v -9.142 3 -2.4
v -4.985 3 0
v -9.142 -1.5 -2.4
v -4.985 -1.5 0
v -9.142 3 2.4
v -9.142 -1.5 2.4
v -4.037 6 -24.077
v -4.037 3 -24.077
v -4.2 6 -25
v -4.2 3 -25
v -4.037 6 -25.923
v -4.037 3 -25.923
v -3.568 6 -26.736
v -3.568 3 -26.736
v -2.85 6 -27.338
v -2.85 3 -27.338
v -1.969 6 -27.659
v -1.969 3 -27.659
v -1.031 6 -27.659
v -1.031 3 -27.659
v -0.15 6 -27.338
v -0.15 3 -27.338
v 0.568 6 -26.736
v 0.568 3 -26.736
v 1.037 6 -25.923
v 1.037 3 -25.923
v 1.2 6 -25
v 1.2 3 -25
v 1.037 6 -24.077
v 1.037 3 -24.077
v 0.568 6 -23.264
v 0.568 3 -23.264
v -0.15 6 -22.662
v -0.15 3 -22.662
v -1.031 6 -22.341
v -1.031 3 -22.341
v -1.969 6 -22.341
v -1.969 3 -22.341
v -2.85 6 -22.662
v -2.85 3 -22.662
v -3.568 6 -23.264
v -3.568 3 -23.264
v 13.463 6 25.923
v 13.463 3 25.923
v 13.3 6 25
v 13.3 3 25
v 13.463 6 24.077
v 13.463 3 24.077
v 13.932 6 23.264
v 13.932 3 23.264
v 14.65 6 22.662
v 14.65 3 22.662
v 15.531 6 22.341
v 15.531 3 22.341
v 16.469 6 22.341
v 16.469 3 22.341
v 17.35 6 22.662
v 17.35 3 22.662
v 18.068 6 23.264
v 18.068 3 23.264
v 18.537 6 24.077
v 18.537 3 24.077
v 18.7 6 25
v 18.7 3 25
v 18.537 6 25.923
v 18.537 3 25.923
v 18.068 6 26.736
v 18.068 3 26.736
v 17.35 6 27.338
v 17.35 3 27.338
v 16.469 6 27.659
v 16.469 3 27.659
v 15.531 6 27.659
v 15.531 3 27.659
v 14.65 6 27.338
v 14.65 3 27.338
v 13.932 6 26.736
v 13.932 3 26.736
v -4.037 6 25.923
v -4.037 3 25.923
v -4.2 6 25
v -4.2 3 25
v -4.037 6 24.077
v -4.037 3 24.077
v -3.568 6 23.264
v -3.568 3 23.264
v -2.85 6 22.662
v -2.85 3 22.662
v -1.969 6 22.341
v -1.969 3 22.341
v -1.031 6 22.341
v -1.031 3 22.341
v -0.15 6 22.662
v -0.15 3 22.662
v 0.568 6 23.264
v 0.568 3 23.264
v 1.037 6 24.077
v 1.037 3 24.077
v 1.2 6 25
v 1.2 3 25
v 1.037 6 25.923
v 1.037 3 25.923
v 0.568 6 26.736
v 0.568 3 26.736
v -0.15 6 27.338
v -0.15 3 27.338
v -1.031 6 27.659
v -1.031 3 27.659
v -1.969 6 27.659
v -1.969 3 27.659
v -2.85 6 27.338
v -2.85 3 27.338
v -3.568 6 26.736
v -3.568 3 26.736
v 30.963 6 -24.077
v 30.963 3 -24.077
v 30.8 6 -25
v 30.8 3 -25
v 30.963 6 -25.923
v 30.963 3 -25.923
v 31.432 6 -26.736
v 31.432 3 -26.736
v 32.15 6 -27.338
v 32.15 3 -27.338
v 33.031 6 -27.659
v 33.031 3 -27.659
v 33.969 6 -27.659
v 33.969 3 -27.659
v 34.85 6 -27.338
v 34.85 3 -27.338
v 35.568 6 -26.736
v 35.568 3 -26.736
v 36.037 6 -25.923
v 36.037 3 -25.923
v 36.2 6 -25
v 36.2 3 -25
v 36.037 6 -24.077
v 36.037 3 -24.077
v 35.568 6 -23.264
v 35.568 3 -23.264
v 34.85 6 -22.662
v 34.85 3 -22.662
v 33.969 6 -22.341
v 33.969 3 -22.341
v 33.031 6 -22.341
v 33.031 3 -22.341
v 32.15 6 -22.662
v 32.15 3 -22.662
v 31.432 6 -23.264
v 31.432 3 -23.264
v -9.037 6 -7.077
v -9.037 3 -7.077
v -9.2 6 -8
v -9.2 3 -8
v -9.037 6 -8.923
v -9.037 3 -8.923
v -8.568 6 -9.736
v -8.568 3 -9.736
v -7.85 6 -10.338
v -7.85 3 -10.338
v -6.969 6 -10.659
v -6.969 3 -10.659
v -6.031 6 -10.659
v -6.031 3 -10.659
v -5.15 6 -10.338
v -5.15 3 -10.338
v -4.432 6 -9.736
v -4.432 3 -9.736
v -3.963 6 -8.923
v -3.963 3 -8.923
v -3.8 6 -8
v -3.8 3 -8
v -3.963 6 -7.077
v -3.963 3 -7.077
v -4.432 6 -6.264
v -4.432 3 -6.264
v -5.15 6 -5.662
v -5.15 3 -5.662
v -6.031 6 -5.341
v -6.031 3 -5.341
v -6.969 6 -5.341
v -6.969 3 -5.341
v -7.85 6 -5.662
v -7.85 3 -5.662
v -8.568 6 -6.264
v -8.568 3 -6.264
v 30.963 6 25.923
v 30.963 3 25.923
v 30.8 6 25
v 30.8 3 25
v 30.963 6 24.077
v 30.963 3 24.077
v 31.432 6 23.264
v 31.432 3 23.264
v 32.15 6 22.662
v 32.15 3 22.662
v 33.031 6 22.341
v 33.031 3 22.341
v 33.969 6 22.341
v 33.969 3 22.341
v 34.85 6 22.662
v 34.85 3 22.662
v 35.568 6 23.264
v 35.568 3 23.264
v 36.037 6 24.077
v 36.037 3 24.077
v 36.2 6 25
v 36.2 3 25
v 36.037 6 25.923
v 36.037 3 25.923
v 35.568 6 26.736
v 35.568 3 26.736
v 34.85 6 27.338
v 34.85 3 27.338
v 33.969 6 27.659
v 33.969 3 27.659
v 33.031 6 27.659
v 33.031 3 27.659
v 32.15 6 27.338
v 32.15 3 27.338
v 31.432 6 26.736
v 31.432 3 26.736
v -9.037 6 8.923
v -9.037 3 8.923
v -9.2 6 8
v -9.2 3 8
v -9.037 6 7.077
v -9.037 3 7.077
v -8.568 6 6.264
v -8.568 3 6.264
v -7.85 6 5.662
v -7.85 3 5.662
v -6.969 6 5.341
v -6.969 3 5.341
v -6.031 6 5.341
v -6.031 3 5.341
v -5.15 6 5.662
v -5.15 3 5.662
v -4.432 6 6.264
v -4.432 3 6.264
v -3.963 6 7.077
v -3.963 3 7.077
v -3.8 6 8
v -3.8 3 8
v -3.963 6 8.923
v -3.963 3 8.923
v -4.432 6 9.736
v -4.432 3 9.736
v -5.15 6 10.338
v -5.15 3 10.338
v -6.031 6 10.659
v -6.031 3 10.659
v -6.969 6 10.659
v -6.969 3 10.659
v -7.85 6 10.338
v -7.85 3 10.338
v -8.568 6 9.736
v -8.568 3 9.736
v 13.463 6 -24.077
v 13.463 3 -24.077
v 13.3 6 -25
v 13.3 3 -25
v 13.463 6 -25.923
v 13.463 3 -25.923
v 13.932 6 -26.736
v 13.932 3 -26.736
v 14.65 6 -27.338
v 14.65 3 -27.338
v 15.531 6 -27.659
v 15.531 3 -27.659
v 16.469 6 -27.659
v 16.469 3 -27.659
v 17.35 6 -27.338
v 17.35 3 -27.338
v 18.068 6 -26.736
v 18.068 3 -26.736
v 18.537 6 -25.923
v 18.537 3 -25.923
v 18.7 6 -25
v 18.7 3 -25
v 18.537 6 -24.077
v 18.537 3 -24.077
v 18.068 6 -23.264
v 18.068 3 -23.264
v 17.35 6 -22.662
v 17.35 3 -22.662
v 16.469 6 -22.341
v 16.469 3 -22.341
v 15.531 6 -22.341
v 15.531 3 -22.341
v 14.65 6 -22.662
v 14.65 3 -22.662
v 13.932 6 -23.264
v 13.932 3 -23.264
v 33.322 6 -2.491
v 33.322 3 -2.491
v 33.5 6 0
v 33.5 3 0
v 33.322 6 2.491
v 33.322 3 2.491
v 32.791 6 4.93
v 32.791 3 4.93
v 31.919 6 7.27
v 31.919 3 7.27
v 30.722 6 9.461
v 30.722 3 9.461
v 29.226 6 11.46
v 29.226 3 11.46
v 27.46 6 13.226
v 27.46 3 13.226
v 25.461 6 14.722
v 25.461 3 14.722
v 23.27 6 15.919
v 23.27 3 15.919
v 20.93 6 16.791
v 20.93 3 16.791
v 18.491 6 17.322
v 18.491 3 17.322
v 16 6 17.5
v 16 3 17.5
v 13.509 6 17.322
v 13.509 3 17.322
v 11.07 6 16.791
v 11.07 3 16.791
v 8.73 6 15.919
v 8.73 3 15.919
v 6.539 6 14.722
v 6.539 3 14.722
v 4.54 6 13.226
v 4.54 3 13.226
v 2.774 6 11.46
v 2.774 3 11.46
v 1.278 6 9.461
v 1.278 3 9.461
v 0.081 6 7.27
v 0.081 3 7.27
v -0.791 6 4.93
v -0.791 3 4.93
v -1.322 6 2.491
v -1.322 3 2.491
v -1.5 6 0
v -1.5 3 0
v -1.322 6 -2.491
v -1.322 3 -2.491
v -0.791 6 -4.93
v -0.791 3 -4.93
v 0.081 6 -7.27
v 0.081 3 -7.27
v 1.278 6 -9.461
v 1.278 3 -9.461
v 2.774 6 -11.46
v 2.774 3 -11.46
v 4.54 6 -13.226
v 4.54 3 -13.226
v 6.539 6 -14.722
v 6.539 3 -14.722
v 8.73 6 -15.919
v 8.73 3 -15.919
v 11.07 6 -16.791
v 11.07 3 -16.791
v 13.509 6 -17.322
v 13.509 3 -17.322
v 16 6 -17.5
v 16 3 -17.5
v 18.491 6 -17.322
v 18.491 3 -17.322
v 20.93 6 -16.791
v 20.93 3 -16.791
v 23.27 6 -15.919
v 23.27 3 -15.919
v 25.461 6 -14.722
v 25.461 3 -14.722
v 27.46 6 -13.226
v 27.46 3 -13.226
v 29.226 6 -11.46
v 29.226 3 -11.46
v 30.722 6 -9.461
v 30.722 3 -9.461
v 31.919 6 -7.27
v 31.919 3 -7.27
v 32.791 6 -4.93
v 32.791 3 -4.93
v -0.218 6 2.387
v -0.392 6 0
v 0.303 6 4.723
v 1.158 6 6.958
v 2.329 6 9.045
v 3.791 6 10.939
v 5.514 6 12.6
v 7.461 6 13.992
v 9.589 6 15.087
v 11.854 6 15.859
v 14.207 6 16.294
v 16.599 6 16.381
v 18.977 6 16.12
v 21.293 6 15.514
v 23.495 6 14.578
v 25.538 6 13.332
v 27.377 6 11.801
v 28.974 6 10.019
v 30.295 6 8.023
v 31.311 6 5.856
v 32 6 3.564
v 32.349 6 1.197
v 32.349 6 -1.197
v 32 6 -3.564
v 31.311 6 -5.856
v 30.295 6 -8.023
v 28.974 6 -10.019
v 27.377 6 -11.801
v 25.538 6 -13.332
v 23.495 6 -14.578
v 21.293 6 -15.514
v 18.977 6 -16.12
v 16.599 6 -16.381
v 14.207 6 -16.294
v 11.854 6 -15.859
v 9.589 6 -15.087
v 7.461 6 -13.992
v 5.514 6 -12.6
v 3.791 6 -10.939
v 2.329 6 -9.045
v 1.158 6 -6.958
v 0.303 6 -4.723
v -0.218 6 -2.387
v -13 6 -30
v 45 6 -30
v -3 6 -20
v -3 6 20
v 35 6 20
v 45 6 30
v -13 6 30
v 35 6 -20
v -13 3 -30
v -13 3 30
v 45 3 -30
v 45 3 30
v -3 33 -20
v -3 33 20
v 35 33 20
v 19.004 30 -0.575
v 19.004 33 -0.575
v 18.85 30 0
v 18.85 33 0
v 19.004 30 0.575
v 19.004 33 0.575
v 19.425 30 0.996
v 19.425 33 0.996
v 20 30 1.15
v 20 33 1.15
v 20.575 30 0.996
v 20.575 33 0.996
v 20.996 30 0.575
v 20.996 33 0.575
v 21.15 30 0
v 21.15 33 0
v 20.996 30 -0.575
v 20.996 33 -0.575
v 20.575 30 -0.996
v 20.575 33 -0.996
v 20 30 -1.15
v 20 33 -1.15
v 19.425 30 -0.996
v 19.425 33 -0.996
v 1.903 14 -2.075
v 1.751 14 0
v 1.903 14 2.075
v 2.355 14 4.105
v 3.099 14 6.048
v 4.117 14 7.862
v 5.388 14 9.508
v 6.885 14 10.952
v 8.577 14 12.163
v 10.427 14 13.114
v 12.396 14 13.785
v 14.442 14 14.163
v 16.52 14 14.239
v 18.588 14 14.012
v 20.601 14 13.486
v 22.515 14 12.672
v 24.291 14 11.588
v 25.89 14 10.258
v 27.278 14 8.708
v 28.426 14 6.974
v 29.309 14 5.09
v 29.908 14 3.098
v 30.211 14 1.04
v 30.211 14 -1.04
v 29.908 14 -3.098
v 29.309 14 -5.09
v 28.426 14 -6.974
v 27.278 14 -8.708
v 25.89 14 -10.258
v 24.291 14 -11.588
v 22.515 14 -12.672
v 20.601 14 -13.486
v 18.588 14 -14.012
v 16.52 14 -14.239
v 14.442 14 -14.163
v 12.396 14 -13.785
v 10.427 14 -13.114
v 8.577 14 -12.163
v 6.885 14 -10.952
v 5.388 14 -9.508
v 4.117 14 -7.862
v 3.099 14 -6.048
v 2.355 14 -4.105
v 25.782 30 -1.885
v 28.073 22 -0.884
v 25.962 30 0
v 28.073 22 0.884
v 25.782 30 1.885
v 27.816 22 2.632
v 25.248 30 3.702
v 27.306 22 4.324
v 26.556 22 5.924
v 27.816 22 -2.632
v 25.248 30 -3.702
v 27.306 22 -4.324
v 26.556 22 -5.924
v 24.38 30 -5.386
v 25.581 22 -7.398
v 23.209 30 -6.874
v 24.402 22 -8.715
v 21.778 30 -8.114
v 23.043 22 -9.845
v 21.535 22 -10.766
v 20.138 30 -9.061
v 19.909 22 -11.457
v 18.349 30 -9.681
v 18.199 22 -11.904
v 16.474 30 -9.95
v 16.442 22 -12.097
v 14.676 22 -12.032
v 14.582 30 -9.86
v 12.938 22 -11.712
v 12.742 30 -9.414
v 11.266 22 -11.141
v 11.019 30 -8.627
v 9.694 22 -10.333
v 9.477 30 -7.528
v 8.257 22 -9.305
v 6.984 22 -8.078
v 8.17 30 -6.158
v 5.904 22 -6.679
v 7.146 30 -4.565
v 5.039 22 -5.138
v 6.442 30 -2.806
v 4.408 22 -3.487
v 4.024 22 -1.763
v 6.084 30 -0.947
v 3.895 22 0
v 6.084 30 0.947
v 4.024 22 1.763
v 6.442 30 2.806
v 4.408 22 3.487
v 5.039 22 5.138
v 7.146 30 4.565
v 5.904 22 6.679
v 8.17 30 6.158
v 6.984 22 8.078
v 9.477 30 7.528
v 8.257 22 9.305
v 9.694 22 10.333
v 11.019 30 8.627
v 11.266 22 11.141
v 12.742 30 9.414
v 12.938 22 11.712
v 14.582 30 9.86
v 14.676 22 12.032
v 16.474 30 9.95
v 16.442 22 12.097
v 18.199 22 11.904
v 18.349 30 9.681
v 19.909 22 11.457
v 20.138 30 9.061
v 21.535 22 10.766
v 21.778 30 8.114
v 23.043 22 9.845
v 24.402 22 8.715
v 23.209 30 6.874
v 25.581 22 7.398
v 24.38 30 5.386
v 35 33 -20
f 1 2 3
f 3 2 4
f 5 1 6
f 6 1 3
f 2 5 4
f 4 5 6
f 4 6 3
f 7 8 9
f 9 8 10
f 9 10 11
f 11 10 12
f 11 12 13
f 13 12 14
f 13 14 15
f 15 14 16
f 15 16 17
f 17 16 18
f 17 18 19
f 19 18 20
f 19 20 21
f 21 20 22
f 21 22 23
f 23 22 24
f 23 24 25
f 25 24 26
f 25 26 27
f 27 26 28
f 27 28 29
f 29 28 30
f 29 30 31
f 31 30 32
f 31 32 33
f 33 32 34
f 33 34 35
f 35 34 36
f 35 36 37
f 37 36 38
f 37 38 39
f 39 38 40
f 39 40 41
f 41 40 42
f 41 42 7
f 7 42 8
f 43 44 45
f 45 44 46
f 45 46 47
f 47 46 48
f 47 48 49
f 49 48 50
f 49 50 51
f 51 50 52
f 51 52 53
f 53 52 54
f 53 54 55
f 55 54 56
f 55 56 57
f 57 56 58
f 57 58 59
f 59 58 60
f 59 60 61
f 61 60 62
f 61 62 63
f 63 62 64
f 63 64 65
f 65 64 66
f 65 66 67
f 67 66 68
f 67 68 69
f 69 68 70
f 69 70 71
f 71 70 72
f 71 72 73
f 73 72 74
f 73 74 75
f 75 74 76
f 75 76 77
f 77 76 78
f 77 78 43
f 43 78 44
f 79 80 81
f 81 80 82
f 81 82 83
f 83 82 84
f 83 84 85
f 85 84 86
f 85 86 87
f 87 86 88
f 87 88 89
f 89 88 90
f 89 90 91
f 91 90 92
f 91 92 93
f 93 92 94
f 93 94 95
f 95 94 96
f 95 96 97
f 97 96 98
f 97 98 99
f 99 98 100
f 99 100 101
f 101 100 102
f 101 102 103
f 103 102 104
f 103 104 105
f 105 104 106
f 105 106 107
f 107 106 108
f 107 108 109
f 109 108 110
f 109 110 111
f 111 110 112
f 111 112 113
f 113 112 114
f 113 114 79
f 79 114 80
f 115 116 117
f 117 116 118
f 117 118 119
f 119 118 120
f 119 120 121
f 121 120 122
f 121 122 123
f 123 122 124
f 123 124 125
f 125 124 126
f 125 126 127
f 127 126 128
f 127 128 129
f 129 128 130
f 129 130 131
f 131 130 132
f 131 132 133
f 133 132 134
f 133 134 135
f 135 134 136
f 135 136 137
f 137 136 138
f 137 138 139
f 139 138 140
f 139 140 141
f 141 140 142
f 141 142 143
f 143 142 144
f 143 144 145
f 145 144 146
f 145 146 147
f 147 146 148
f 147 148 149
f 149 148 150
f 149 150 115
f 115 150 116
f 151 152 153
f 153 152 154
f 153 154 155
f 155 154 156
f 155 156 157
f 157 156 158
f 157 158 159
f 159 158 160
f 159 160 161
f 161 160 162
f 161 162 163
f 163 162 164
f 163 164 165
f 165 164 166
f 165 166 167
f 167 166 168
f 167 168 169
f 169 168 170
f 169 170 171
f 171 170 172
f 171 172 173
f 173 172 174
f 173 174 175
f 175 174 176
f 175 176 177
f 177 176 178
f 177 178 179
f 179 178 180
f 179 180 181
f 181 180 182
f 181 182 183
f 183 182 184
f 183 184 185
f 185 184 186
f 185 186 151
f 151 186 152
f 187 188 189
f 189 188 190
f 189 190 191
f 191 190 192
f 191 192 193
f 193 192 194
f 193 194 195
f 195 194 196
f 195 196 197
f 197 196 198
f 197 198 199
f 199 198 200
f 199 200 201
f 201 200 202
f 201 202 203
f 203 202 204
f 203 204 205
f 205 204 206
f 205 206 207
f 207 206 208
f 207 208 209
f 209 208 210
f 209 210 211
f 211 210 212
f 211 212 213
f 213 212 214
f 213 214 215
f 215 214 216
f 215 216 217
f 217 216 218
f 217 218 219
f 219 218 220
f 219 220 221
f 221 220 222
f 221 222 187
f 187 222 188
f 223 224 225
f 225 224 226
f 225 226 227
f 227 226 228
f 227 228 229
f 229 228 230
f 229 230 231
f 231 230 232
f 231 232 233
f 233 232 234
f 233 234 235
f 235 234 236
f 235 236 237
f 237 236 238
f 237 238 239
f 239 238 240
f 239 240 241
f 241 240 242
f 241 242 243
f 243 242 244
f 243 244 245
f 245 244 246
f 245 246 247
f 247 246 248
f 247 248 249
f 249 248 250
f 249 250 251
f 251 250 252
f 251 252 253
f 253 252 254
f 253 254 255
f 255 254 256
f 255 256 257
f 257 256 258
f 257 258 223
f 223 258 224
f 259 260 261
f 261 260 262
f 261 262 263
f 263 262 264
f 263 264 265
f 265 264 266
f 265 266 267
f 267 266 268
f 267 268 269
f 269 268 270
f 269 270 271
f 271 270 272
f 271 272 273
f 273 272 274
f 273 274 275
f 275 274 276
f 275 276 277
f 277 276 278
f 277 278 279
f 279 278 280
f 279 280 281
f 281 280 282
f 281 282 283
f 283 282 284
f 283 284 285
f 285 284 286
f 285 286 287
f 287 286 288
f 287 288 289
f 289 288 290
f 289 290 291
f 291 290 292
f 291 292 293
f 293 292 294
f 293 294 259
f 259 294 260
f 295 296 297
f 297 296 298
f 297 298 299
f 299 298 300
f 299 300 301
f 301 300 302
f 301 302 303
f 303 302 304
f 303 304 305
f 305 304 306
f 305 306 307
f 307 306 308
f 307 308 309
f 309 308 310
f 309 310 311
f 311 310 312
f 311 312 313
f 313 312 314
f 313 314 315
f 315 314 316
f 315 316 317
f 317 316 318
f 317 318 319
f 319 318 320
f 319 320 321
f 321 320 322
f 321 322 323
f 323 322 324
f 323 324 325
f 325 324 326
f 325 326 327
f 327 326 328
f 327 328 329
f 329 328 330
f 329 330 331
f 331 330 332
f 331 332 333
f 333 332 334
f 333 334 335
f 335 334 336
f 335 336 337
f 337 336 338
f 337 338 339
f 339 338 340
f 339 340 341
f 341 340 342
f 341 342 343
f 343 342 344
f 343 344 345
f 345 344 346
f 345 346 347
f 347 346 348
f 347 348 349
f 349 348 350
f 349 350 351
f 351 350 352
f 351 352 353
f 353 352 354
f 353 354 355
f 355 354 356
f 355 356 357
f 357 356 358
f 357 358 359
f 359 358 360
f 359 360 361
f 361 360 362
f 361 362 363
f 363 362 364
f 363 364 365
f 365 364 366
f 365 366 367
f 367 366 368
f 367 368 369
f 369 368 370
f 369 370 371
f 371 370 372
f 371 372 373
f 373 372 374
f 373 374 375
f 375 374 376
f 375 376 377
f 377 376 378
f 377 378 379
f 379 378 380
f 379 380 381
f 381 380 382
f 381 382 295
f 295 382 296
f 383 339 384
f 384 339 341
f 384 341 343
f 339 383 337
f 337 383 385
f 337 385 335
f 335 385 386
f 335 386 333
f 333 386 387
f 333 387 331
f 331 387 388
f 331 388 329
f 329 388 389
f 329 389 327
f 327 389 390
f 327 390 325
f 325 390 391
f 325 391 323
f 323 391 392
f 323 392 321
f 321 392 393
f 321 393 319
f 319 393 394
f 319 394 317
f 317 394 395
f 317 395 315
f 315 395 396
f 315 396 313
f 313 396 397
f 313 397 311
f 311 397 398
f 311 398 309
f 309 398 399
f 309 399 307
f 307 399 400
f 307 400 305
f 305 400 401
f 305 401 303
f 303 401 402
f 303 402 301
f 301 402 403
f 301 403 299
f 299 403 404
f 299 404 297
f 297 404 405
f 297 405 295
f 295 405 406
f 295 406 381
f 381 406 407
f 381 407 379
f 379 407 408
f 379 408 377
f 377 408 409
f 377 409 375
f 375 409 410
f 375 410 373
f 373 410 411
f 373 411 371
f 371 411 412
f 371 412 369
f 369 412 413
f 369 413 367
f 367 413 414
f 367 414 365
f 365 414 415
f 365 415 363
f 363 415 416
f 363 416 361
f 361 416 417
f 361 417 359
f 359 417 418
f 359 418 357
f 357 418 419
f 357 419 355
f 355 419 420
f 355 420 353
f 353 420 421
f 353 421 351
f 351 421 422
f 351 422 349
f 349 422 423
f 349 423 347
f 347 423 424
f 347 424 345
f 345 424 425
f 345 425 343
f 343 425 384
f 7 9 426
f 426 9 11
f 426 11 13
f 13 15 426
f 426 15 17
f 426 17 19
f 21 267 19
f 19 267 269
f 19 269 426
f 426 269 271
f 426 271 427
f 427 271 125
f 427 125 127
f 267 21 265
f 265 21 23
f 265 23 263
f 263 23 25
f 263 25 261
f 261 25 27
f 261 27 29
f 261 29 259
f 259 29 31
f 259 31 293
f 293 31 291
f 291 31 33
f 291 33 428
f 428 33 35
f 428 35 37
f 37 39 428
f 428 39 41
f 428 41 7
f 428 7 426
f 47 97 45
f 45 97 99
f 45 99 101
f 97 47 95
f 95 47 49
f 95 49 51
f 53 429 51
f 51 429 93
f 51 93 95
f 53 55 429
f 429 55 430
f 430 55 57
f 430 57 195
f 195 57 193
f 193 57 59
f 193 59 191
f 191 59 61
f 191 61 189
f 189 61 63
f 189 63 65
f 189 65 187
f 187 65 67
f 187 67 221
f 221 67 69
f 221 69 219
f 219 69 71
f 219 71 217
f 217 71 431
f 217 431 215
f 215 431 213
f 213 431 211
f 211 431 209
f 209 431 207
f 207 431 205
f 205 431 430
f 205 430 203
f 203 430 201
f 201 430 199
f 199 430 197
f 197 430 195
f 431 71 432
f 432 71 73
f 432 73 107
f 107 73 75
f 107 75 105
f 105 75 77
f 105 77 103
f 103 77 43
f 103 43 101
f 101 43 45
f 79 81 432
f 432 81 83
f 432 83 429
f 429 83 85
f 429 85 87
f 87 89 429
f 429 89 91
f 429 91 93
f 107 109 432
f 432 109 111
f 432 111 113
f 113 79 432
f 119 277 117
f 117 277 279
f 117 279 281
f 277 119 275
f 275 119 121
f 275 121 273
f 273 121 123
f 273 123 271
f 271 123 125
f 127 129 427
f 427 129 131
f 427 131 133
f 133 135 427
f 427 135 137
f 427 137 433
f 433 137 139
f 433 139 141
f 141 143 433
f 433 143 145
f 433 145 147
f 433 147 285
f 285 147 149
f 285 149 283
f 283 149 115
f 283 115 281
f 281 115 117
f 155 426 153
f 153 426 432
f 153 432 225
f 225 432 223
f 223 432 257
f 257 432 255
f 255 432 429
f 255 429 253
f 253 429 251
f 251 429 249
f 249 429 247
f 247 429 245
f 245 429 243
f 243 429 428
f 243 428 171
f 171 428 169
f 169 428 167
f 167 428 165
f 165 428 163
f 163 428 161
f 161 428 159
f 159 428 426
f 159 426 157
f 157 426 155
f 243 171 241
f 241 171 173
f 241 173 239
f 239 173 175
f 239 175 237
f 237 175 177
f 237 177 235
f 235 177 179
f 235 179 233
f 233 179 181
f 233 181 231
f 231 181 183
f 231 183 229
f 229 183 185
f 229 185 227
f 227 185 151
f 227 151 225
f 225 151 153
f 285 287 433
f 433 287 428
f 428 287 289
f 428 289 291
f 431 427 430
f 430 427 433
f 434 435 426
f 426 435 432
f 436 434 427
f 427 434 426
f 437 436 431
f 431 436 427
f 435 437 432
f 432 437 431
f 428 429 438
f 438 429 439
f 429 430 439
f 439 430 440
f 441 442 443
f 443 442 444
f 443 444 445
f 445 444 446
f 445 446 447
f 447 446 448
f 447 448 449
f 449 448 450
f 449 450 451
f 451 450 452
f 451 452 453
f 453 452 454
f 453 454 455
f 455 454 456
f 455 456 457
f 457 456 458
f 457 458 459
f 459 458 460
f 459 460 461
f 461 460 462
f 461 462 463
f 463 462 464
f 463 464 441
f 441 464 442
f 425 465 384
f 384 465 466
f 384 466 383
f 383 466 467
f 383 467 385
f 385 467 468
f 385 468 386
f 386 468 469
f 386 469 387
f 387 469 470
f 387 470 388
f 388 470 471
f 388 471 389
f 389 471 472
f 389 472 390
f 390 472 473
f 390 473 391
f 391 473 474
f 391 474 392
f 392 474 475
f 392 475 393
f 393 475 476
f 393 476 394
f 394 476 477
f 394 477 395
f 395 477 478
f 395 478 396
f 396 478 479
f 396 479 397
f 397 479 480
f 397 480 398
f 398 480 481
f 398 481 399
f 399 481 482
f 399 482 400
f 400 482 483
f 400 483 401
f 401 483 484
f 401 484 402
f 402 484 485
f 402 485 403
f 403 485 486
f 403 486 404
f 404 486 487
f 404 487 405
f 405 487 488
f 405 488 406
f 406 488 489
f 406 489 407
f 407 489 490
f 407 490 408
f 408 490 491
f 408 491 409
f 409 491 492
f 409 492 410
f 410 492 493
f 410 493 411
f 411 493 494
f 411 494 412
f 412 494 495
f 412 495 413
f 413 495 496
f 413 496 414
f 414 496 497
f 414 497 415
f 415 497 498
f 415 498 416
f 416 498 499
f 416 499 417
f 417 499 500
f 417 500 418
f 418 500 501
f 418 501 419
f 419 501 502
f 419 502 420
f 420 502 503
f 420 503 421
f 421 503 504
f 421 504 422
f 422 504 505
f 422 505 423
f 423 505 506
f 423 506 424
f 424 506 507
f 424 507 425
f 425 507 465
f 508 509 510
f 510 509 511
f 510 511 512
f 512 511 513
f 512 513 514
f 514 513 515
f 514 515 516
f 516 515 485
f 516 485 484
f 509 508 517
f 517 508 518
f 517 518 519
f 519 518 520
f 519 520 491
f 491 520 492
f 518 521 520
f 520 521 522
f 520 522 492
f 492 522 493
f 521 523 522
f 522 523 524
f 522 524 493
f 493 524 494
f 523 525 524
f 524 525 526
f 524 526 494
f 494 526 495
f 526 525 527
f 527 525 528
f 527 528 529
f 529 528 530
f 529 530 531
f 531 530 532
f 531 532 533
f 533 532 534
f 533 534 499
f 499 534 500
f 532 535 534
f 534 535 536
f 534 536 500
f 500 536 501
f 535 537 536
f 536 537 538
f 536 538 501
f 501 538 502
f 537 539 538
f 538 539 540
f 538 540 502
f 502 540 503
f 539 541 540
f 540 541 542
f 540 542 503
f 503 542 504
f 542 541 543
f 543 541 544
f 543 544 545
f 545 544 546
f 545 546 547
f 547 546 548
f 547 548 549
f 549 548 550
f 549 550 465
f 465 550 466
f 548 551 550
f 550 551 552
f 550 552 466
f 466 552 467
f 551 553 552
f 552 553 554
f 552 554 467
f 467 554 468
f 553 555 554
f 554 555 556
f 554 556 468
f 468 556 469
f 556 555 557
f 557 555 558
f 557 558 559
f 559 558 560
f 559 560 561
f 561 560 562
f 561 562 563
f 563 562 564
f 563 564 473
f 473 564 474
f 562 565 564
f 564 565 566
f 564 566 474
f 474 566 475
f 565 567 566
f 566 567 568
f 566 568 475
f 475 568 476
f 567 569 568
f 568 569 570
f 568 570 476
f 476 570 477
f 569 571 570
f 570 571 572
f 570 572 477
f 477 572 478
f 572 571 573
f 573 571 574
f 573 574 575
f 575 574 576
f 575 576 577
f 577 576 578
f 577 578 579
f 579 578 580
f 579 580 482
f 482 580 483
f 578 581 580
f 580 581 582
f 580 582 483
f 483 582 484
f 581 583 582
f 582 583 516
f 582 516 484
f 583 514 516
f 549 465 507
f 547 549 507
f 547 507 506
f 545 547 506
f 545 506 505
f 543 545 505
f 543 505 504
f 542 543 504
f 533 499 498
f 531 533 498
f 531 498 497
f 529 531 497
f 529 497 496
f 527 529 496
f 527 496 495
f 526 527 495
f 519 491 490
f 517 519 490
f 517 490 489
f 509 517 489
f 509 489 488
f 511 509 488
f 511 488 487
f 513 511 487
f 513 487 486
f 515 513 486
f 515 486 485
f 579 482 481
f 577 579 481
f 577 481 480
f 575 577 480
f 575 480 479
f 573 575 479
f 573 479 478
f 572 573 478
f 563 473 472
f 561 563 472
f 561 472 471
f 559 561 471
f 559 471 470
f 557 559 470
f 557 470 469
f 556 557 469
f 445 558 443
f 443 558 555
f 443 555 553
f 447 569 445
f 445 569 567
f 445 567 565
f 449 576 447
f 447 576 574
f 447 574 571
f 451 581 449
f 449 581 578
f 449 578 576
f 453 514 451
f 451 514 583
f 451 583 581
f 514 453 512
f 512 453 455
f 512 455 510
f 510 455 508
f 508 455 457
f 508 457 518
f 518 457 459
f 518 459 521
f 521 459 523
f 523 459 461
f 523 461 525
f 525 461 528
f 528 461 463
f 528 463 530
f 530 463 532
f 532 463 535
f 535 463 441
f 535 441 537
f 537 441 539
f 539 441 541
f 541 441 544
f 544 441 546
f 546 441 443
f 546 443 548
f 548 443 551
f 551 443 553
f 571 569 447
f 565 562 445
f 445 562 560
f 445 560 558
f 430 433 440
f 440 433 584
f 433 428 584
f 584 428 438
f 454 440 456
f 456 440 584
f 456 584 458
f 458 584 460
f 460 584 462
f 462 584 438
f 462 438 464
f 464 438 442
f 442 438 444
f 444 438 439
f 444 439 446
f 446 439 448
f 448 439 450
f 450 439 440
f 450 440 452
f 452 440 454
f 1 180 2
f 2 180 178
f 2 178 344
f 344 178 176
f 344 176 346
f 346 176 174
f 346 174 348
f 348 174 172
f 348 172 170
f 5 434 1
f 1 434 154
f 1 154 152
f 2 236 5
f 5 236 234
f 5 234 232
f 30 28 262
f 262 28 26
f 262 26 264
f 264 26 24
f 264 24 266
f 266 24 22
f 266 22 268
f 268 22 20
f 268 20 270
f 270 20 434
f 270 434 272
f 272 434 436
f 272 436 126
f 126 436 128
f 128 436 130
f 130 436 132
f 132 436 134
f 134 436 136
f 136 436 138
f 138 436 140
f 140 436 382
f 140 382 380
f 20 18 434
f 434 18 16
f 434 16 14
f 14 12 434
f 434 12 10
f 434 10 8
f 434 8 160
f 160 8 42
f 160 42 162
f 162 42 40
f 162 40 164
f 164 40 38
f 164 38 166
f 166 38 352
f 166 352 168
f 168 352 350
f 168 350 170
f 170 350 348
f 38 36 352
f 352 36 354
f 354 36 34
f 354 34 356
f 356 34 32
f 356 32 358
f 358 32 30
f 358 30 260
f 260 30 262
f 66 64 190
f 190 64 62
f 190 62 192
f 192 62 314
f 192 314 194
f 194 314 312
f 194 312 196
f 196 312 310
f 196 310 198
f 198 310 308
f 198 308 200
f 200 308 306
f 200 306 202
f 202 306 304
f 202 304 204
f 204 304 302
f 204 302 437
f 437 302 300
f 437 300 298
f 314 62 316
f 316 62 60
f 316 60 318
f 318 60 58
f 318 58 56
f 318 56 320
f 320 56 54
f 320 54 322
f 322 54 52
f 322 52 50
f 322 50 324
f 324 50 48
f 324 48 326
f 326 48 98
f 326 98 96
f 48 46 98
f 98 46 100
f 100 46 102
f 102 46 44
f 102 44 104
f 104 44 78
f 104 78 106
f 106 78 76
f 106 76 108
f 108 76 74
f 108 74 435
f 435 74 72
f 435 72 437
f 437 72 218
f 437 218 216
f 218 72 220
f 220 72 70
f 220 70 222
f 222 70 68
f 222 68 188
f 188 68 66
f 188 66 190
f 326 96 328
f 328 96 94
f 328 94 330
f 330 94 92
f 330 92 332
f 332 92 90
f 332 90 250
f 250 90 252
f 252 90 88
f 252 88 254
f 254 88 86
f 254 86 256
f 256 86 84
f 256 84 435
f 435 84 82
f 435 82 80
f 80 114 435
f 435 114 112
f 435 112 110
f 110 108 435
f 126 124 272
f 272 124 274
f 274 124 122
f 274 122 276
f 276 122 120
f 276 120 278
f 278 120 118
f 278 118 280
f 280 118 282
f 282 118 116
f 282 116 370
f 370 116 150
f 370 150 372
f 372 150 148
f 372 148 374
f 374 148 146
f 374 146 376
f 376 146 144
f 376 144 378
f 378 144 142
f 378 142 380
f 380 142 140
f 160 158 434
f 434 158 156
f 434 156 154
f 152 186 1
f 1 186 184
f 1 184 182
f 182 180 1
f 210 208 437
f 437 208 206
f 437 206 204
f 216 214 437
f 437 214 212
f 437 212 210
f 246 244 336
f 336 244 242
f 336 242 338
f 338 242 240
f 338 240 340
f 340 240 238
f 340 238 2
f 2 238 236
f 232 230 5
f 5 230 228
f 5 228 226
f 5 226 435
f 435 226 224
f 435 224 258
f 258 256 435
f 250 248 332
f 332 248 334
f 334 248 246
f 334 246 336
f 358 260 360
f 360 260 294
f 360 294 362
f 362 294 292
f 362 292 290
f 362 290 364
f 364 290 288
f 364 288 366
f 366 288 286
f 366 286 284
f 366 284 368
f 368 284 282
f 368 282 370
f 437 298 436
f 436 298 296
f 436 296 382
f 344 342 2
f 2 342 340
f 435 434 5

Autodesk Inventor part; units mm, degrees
ref_plane "YZ Plane" through (0, 0, 0) normal (1, 0, 0) x (0, 1, 0)
ref_plane "XZ Plane" through (0, 0, 0) normal (0, 1, 0) x (-1, 0, 0)
ref_plane "XY Plane" through (0, 0, 0) normal (0, 0, 1) x (1, 0, 0)
ref_plane "Work Plane5" through (0, 3, 0) normal (0, 1, 0) x (1, 0, 0)
sketch "Sketch45" plane through (0, 3, 0) normal (0, 1, 0) x (1, 0, 0)
  line L0 (35, -20) -> (-3, -20)
  line L1 (-3, -20) -> (-3, 20)
  line L2 (-3, 20) -> (35, 20)
  line L3 (35, 20) -> (35, -20)
  point P0 (0, 0)
  dimension "d142" = 38
  dimension "d143" = 40
extrude "Extrusion34" add sketch "Sketch45" along normal blind 30
ref_plane "Work Plane2" through (0, 0, 0) normal (0, -1, 0) x (1, 0, 0)
sketch "Sketch47" plane through (0, 0, 0) normal (0, -1, 0) x (1, 0, 0)
  circle A0 centre (16, 0) radius 18
  point P0 (0, 0)
  dimension "d146" = 36
extrude "Extrusion35" cut sketch "Sketch47" against normal blind 30 draft -15
ref_plane "Work Plane1" through (0, 3, 0) normal (0, 1, 0) x (1, 0, 0)
sketch "Sketch74" plane through (0, 33, 0) normal (0, 1, 0) x (1, 0, 0)
  circle A0 centre (20, 0) radius 1.15
  point P0 (0, 0)
  dimension "d210" = 2.3
extrude "Extrusion51" cut sketch "Sketch74" against normal blind 10
sketch "Sketch77" plane through (0, 3, 0) normal (0, -1, 0) x (1, 0, 0)
  circle A0 centre (16, 0) radius 17.5
  point P0 (0, 0)
  dimension "d219" = 35
sketch "Sketch78" plane through (0, 3, 0) normal (0, -1, 0) x (1, 0, 0)
  line L0 (45, -30) -> (-13, -30)
  line L1 (-13, -30) -> (-13, 30)
  line L2 (-13, 30) -> (45, 30)
  line L3 (45, 30) -> (45, -30)
  line L4 (45, -30) -> (-13, 30) construction
  line L5 (-13, -30) -> (45, 30) construction
  point P0 (0, 0)
  point P1 (16, 0)
  dimension "d220" = 58
  dimension "d221" = 60
extrude "Extrusion53" add sketch "Sketch78" against normal blind 3
extrude "Extrusion54" cut sketch "Sketch77" against normal blind 3
sketch "Sketch81" plane through (0, 3, 0) normal (0, -1, 0) x (1, 0, 0)
  circle A0 centre (33.5, -25) radius 2.7
  line L0 (-13, -30) -> (45, -30) projected
  line L1 (45, -30) -> (45, 30) projected
  circle A1 centre (16, -25) radius 2.7
  circle A2 centre (-1.5, -25) radius 2.7
  circle A3 centre (-6.5, -8) radius 2.7
  circle A4 centre (-6.5, 8) radius 2.7
  circle A5 centre (-1.5, 25) radius 2.7
  circle A6 centre (16, 25) radius 2.7
  circle A7 centre (33.5, 25) radius 2.7
  point P0 (0, 0)
  dimension "mag_D" = 5.4
  dimension "d232" = 5
  dimension "d233" = 11.5
  dimension "d234" = 5.4
  dimension "d235" = 17.5
  dimension "d236" = 5.4
  dimension "d237" = 17.5
  dimension "d238" = 5.4
  dimension "d239" = 5
  dimension "d240" = 17
  dimension "d241" = 5.4
  dimension "d242" = 16
  dimension "d243" = 5.4
  dimension "d244" = 17
  dimension "d245" = 5.4
  dimension "d246" = 17.5
  dimension "d247" = 5.4
  dimension "d248" = 17.5
  dimension "d249" = 5
extrude "Extrusion56" cut sketch "Sketch81" against normal blind 30
sketch "Sketch83" plane through (0, 3, 0) normal (0, -1, 0) x (1, 0, 0)
  circle A0 centre (-6.5, -8) radius 2.7 projected
  line L0 (-9.1417, -2.4) -> (-9.1417, 2.4)
  line L1 (-9.1417, 2.4) -> (-4.9848, 0)
  line L2 (-4.9848, 0) -> (-9.1417, -2.4)
  point P0 (0, 0)
  point P1 (-9.1417, -8.5581)
  point P2 (-7.756, 0)
  dimension "d253" = 4.8
extrude "Extrusion57" add sketch "Sketch83" along normal blind 4.5 contours L0 L1 L2
equation "\"d234\" = mag_D"
equation "\"d236\" = mag_D"
equation "\"d237\" = d235"
equation "\"d238\" = mag_D"
equation "\"d241\" = mag_D"
equation "\"d243\" = mag_D"
equation "\"d244\" = d240"
equation "\"d245\" = mag_D"
equation "\"d246\" = d235"
equation "\"d247\" = mag_D"
equation "\"d248\" = d235"
equation "\"d249\" = d239"
properties part number "liquid_port_v03"
